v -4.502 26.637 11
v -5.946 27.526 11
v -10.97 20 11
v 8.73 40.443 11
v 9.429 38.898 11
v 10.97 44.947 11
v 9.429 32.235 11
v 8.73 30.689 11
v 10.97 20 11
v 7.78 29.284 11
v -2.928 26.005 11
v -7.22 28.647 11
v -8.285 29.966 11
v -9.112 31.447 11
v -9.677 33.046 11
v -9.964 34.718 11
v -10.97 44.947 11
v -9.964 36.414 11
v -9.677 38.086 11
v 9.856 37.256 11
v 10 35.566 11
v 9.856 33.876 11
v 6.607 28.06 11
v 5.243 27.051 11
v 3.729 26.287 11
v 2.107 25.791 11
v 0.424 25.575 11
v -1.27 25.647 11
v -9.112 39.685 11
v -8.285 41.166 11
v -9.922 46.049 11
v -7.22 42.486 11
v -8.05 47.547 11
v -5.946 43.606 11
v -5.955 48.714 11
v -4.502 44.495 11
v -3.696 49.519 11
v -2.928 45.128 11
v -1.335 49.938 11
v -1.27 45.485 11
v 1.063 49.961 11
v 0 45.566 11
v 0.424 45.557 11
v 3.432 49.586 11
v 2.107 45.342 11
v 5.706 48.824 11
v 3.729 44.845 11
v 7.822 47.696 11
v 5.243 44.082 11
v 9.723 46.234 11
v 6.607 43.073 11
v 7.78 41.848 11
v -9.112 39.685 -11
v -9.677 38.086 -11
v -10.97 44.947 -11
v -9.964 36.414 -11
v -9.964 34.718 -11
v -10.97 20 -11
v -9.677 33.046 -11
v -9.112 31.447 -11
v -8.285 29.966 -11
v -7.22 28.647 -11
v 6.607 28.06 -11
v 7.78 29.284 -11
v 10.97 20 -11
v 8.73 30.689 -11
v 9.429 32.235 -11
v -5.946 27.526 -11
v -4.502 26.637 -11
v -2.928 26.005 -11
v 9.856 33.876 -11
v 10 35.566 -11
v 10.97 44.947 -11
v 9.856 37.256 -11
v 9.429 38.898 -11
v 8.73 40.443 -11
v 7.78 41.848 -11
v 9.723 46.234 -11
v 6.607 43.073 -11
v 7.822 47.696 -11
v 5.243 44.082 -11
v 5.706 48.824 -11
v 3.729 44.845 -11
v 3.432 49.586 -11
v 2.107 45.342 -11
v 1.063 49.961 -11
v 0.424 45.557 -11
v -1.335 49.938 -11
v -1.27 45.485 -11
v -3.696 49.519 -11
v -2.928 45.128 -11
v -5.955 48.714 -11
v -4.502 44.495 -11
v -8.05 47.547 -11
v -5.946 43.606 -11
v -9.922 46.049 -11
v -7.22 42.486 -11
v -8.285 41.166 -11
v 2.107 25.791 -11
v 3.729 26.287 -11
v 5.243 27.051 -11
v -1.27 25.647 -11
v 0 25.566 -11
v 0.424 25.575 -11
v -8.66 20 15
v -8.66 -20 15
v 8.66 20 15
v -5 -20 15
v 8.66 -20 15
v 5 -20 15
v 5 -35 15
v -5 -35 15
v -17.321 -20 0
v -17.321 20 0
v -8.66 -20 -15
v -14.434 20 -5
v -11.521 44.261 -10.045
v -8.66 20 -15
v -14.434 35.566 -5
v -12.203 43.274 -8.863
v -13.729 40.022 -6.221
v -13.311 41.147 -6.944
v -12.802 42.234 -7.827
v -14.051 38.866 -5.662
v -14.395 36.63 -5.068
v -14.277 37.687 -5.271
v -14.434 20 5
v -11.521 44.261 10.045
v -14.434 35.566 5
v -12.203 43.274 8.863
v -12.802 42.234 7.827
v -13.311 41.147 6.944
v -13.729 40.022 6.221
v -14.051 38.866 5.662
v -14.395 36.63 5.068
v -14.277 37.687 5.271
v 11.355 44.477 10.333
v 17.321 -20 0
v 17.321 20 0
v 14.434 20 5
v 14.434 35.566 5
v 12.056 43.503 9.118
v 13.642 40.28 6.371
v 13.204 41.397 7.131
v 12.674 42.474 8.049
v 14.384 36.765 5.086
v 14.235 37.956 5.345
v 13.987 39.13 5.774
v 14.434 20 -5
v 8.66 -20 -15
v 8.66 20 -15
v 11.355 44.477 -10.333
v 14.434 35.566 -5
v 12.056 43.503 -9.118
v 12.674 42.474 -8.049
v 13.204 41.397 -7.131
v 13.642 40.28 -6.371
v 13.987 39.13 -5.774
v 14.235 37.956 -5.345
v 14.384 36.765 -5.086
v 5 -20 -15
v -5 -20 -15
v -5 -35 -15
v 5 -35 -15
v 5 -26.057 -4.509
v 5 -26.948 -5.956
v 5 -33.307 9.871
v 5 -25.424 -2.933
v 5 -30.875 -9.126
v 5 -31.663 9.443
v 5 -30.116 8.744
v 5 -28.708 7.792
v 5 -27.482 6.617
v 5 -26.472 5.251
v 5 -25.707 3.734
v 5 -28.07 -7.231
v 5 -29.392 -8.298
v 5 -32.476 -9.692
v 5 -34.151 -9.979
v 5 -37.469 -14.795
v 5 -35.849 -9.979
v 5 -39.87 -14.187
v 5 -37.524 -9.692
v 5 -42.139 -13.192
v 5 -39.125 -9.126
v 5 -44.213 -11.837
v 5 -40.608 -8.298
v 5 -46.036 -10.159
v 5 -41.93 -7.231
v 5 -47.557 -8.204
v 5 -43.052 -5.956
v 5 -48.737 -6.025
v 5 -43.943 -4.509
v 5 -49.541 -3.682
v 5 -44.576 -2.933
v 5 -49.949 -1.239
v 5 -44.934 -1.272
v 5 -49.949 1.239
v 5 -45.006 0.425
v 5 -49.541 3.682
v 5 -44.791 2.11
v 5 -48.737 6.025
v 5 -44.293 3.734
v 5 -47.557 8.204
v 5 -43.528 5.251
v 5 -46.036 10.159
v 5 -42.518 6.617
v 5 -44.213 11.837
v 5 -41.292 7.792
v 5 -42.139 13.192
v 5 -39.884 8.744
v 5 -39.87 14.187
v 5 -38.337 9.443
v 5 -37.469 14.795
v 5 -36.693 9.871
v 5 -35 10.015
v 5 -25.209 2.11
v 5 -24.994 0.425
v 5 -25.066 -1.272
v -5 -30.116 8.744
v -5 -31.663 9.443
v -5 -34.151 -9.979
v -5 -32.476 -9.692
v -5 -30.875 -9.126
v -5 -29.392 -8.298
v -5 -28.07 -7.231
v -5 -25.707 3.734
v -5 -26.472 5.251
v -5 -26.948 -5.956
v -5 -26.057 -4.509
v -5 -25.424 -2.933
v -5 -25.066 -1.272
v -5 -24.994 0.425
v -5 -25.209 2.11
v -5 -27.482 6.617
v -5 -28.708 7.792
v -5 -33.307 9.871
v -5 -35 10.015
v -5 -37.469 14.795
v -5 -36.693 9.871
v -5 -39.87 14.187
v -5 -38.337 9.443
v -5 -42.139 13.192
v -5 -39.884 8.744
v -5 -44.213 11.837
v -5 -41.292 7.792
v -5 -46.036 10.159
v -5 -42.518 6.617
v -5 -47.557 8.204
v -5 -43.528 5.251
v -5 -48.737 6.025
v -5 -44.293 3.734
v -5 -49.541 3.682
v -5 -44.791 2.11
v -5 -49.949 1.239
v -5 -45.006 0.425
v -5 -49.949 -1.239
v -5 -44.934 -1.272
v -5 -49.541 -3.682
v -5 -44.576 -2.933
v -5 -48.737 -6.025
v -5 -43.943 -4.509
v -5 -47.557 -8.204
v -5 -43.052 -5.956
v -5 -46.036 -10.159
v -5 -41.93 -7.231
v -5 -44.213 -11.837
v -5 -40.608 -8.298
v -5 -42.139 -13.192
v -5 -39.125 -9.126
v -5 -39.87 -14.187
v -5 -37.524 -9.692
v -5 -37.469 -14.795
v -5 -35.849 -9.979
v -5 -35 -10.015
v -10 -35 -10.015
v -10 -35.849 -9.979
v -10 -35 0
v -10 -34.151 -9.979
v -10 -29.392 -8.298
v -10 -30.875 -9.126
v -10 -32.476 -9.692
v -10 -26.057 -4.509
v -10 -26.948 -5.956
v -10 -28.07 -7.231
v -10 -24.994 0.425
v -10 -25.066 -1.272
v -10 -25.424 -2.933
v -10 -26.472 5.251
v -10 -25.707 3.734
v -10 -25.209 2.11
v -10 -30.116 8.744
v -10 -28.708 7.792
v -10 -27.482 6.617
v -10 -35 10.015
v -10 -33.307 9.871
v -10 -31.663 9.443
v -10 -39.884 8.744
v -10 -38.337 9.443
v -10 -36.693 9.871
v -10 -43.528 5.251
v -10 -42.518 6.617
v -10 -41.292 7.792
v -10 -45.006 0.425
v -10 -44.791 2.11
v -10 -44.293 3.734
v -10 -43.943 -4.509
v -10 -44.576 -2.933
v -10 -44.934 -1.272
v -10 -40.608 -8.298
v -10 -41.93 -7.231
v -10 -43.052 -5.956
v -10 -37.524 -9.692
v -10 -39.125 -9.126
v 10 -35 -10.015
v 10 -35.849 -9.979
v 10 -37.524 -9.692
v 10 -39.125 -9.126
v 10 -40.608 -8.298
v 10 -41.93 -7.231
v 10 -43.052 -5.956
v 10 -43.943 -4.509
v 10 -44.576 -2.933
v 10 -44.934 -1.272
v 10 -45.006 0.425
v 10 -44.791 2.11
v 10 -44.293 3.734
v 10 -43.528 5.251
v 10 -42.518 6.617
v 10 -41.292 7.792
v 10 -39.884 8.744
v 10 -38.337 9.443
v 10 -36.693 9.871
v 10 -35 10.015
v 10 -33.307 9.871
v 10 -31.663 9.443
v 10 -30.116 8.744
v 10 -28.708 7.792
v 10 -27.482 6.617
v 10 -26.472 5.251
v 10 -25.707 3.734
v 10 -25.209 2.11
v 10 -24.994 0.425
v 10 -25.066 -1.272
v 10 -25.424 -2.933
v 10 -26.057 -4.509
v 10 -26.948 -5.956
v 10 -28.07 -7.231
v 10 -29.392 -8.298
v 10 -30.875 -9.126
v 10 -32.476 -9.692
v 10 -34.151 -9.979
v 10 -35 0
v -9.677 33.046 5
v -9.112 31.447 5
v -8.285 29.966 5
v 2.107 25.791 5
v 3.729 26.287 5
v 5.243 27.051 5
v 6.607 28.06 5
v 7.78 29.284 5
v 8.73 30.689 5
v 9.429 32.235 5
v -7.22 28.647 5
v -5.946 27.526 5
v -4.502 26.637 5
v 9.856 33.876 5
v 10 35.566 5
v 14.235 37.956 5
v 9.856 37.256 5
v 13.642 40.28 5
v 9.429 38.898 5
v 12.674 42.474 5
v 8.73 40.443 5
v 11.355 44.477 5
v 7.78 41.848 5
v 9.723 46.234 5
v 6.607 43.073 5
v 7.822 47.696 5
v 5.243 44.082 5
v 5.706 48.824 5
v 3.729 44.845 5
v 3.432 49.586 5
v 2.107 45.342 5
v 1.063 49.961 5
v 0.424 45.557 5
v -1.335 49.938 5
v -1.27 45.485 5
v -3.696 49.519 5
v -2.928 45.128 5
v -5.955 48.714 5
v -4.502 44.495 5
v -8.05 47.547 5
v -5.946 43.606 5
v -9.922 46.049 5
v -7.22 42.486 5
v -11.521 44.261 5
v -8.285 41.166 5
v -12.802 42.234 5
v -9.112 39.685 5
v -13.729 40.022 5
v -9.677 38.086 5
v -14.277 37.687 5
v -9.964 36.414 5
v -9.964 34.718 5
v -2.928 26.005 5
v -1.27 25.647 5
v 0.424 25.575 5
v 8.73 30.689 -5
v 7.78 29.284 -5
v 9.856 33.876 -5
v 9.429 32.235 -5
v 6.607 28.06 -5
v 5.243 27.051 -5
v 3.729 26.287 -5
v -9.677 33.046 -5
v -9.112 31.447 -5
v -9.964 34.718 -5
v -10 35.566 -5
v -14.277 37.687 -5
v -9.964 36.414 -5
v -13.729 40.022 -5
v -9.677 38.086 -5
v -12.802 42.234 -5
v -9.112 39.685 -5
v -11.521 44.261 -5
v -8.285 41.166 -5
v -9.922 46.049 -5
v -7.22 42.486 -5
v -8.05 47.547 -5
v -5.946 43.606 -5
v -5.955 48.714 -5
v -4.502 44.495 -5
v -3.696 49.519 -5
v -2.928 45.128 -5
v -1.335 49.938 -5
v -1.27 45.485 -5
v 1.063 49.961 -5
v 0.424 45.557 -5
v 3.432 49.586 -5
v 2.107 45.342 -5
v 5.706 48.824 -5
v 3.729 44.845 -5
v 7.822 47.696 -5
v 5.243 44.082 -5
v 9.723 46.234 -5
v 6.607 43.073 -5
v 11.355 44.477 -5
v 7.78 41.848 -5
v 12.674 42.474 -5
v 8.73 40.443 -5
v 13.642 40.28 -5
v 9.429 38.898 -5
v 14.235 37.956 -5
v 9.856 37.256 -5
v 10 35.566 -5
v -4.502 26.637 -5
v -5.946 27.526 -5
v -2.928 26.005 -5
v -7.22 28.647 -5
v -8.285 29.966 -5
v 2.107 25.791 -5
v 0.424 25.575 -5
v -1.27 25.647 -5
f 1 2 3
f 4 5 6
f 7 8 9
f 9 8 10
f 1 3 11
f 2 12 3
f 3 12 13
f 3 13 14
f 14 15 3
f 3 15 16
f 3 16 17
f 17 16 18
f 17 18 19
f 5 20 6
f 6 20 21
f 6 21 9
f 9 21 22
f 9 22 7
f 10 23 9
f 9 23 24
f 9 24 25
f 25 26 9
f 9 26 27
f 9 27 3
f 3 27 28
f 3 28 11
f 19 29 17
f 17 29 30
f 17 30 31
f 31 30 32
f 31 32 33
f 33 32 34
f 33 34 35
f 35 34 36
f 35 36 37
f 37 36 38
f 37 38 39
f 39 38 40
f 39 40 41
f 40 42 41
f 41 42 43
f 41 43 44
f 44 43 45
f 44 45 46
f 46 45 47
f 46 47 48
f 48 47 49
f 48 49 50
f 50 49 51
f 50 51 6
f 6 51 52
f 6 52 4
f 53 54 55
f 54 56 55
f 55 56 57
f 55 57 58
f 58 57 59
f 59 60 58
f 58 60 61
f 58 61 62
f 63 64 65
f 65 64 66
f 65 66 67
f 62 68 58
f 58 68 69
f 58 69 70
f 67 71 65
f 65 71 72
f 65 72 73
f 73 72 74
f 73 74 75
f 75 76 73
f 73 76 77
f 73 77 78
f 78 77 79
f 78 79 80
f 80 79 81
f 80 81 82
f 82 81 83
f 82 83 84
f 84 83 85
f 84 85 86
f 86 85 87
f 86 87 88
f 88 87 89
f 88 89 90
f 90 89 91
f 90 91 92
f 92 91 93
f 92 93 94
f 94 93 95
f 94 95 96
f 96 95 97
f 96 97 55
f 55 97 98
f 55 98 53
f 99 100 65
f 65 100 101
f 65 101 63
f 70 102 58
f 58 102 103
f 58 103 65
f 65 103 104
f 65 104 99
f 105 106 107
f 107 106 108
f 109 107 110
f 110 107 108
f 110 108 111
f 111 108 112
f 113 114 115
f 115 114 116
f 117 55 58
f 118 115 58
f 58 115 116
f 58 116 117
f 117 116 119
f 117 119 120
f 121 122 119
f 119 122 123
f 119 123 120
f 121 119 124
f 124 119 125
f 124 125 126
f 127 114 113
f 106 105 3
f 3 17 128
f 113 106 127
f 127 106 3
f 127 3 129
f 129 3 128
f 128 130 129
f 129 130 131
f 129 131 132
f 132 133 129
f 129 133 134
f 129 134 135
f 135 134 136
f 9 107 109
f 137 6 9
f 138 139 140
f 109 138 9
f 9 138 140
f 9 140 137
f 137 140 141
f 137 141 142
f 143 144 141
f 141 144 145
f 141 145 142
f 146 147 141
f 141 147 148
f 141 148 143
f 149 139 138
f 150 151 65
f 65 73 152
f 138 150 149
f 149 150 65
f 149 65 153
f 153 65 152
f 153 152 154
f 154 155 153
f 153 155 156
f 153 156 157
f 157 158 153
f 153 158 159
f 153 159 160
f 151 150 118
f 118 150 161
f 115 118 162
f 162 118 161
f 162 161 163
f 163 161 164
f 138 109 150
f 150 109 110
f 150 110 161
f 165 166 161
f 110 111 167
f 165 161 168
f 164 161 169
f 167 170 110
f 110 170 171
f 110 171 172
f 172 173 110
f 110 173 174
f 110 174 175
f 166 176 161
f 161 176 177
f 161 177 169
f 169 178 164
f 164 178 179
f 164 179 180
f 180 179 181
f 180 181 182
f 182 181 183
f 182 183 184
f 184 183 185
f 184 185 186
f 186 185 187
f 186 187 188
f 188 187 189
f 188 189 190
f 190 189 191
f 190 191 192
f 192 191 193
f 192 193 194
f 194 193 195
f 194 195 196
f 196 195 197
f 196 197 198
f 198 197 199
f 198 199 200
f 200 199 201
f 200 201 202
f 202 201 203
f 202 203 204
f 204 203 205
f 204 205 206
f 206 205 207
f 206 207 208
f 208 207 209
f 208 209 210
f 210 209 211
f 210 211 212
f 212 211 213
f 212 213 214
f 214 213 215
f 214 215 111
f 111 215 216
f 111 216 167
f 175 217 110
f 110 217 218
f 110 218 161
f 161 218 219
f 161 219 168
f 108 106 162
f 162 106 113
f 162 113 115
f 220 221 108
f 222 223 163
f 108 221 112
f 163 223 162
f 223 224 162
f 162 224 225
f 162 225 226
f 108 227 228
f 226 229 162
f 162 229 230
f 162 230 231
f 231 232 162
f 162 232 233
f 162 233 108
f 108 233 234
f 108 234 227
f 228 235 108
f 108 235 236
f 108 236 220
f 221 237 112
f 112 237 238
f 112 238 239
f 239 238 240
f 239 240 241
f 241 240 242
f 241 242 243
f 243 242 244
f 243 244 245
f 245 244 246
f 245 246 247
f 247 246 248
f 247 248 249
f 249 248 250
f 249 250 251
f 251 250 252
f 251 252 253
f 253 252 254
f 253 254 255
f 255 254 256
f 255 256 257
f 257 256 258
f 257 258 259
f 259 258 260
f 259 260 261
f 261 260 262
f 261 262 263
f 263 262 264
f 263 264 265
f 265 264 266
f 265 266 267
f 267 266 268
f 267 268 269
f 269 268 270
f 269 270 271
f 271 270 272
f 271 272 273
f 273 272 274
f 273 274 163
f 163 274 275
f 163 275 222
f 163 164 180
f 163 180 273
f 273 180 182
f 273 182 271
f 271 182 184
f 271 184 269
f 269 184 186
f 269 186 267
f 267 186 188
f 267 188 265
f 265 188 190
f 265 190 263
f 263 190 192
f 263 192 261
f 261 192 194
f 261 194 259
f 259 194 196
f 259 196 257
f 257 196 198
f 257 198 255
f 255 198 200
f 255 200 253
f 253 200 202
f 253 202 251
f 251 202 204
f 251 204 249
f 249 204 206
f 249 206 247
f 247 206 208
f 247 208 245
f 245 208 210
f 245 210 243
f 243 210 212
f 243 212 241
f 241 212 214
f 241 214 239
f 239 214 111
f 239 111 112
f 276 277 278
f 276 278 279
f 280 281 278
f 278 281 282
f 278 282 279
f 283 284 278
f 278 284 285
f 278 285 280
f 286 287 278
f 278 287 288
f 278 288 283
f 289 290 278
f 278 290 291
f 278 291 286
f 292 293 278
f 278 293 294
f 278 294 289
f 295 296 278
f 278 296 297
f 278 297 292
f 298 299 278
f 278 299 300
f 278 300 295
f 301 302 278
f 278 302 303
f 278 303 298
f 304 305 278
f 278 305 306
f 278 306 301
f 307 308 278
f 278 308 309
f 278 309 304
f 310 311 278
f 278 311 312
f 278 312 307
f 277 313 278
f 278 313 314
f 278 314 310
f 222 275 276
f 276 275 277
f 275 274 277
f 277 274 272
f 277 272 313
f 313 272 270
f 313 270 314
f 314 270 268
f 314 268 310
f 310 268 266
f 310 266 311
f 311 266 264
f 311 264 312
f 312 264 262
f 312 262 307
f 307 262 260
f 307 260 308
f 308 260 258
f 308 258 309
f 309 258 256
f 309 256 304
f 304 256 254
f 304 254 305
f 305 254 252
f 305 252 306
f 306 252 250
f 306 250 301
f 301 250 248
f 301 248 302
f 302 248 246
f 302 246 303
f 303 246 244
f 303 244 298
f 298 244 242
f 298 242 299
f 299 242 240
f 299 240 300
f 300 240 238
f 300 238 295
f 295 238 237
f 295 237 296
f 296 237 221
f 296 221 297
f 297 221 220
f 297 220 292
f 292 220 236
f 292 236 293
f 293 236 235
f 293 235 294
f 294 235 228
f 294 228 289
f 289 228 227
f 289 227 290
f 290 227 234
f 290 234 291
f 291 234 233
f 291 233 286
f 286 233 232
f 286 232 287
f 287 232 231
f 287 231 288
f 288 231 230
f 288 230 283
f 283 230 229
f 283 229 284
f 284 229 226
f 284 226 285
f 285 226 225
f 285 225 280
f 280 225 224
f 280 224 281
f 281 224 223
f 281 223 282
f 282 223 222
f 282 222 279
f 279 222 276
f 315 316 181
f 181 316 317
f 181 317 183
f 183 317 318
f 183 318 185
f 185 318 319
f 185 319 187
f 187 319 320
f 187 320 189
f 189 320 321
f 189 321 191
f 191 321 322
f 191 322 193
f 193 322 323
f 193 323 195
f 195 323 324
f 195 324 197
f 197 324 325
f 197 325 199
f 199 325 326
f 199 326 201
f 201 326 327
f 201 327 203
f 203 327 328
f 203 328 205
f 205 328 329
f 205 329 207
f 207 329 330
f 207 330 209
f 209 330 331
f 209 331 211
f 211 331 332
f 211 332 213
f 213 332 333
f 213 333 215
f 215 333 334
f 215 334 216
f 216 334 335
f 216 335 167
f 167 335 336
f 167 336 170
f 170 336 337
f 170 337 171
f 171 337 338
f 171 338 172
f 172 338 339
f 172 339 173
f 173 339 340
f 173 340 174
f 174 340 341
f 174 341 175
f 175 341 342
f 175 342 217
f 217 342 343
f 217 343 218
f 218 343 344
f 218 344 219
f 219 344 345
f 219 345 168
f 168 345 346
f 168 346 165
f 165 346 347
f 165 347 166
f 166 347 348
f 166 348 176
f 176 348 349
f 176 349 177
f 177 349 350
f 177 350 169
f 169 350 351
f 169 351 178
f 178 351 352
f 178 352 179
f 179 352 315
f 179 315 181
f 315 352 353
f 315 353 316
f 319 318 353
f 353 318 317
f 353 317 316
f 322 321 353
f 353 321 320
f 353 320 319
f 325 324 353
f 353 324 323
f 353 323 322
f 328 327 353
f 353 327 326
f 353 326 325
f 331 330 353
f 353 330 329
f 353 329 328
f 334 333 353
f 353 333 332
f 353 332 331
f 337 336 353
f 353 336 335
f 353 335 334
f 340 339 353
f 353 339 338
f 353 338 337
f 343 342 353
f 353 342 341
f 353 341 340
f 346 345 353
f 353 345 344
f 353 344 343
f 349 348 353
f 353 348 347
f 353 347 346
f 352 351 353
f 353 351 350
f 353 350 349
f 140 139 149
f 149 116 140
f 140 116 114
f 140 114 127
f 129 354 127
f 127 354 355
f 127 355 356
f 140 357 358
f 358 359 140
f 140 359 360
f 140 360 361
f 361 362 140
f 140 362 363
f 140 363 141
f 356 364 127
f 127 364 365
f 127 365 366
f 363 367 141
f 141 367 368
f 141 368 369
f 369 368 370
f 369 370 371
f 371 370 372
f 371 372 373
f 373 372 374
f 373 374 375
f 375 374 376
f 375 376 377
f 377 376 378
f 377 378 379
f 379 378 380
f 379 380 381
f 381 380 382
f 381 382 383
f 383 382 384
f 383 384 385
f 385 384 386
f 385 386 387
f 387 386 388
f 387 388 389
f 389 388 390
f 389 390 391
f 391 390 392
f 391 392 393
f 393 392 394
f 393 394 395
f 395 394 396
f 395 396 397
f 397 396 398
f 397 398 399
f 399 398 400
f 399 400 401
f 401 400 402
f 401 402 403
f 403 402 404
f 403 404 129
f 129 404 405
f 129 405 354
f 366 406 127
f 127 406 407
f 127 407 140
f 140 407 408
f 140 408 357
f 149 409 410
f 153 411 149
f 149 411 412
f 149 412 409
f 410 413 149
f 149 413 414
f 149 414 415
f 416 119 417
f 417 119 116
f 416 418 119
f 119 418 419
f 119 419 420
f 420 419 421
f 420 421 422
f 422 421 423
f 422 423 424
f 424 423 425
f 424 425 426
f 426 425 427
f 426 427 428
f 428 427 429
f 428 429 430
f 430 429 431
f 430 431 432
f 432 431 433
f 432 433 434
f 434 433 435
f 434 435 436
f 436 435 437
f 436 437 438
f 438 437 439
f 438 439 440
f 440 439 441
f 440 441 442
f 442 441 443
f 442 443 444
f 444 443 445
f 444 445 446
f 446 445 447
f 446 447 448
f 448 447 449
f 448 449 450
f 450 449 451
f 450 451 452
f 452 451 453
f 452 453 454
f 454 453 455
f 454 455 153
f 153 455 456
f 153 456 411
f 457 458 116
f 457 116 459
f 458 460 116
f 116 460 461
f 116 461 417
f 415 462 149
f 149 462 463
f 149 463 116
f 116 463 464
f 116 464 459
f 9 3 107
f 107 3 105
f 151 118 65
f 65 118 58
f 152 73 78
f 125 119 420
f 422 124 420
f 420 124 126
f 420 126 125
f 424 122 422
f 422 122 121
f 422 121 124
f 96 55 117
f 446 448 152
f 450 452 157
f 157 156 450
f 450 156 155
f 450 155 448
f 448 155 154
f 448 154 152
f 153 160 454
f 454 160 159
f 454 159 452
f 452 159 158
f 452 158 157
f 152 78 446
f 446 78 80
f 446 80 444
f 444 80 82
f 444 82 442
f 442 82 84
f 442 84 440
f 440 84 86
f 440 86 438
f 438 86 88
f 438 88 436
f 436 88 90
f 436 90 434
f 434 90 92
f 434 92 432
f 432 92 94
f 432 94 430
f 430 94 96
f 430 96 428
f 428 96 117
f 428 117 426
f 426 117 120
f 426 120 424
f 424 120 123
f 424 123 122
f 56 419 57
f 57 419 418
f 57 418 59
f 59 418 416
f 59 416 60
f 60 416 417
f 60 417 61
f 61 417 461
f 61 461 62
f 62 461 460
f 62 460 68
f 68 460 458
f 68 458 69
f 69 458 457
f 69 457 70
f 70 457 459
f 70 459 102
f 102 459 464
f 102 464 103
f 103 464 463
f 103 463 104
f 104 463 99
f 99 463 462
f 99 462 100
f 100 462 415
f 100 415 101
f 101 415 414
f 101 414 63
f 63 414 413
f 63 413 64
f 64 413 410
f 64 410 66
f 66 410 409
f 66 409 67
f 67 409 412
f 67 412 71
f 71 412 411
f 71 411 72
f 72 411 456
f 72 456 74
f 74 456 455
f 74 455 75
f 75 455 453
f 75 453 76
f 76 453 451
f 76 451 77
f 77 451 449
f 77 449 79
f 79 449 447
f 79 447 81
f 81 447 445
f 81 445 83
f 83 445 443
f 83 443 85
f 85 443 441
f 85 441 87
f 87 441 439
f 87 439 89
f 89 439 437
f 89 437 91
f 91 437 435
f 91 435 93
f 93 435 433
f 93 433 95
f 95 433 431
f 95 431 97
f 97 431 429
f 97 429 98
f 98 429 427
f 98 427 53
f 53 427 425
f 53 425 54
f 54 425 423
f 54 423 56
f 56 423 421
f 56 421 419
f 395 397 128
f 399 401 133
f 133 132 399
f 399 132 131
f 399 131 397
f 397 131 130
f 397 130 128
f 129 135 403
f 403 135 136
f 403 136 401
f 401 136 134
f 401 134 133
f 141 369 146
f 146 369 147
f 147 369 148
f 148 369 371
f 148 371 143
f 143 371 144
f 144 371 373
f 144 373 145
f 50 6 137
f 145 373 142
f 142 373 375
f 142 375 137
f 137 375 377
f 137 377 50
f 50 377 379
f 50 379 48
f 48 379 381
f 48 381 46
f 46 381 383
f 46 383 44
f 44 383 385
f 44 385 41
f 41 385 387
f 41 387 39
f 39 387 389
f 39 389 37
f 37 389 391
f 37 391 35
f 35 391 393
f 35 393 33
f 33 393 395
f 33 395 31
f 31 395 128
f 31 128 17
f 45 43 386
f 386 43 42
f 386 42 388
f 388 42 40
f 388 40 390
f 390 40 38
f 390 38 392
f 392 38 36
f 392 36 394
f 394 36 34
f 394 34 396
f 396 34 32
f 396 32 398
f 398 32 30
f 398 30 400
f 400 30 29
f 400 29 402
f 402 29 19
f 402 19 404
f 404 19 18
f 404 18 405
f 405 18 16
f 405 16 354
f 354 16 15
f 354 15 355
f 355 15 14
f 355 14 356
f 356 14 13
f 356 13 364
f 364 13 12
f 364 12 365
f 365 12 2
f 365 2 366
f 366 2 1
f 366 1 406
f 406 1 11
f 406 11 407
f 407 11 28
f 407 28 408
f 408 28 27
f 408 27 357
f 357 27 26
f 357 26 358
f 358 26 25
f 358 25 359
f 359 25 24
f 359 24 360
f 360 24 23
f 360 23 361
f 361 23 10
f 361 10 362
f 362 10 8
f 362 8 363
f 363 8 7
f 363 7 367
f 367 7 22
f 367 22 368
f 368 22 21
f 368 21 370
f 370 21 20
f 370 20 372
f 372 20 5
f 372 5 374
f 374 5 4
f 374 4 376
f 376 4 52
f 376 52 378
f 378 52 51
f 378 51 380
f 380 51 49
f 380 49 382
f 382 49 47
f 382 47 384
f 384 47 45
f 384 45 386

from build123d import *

# Parameters (mm, degrees)
SALIENTE_EXTRUIR1_DEPTH    = 50
CORTAR_EXTRUIR1_DEPTH      = 56
CORTAR_EXTRUIR1_DEPTH_BACK = 56
CROQUIS2_W                 = 12.320508076
CROQUIS2_H                 = 30
CORTAR_EXTRUIR2_DEPTH      = 57.773277876
CORTAR_EXTRUIR2_DEPTH_BACK = 57.773277876
CROQUIS5_R                 = 10.01543576
SALIENTE_EXTRUIR2_DEPTH    = 10
CORTAR_EXTRUIR3_DEPTH      = 56
CORTAR_EXTRUIR3_DEPTH_BACK = 56
CROQUIS6_W                 = 10
CROQUIS6_H                 = 30
CROQUIS6_W_2               = 4
CORTAR_EXTRUIR4_DEPTH      = 56
CORTAR_EXTRUIR4_DEPTH_BACK = 56
CROQUIS7_R                 = 10


with BuildPart() as part:
    # Croquis1 → Saliente-Extruir1 (new, symmetric)
    with BuildSketch(Plane(origin=(0, 0, 0), x_dir=(1, 0, 0), z_dir=(0, 1, 0))):
        Polygon((-17.320508076, 0), (-8.660254038, -15), (8.660254038, -15), (17.320508076, 0), (8.660254038, 15), (-8.660254038, 15), align=None)
    extrude(amount=SALIENTE_EXTRUIR1_DEPTH, both=True)

    # Croquis2 → Cortar-Extruir1 (cut, two sides: drawn at the far end of the back side and taken through both)
    with BuildSketch(Plane.XY.offset(-CORTAR_EXTRUIR1_DEPTH_BACK)):
        with Locations((-11.160254038, -35)):
            Rectangle(CROQUIS2_W, CROQUIS2_H)
        with Locations((11.160254038, -35)):
            Rectangle(CROQUIS2_W, CROQUIS2_H)
    extrude(amount=CORTAR_EXTRUIR1_DEPTH + CORTAR_EXTRUIR1_DEPTH_BACK, mode=Mode.SUBTRACT)

    # Croquis3 → Cortar-Extruir2 (cut, two sides: drawn at the far end of the back side and taken through both)
    with BuildSketch(Plane(origin=(5, 0, 0), x_dir=(0, 0, -1), z_dir=(1, 0, 0)).offset(-CORTAR_EXTRUIR2_DEPTH_BACK)):
        with BuildLine():
            Line((-15, -35), (-15, -53.002669734))
            Line((-15, -53.002669734), (15, -53.002669734))
            Line((15, -53.002669734), (15, -35))
            ThreePointArc((15, -35), (0, -50), (-15, -35))
        make_face()
    extrude(amount=CORTAR_EXTRUIR2_DEPTH + CORTAR_EXTRUIR2_DEPTH_BACK, mode=Mode.SUBTRACT)

    # Croquis5 → Saliente-Extruir2 (add, symmetric)
    with BuildSketch(Plane(origin=(0, 0, 0), x_dir=(0, 0, -1), z_dir=(1, 0, 0))):
        with Locations((0, -35)):
            Circle(CROQUIS5_R)
    extrude(amount=SALIENTE_EXTRUIR2_DEPTH, both=True)

    # Croquis6 → Cortar-Extruir3 (cut, two sides: drawn at the far end of the back side and taken through both)
    with BuildSketch(Plane(origin=(0, 0, 0), x_dir=(0, 0, -1), z_dir=(1, 0, 0)).offset(-CORTAR_EXTRUIR3_DEPTH_BACK)):
        with Locations((0, 35)):
            Rectangle(CROQUIS6_W, CROQUIS6_H)
        with Locations((-13, 35)):
            Rectangle(CROQUIS6_W_2, CROQUIS6_H)
        with Locations((13, 35)):
            Rectangle(CROQUIS6_W_2, CROQUIS6_H)
    extrude(amount=CORTAR_EXTRUIR3_DEPTH + CORTAR_EXTRUIR3_DEPTH_BACK, mode=Mode.SUBTRACT)

    # Croquis7 → Cortar-Extruir4 (cut, two sides: drawn at the far end of the back side and taken through both)
    with BuildSketch(Plane.XY.offset(-CORTAR_EXTRUIR4_DEPTH_BACK)):
        with Locations(Location((0, 35.56624327, 0), (0, 0, 270))):
            Circle(CROQUIS7_R)
        with BuildLine():
            Line((-14.43375673, 35.56624327), (-14.43375673, 54.061973256))
            Line((-14.43375673, 54.061973256), (14.43375673, 54.061973256))
            Line((14.43375673, 54.061973256), (14.43375673, 35.56624327))
            ThreePointArc((14.43375673, 35.56624327), (0, 50), (-14.43375673, 35.56624327))
        make_face()
    extrude(amount=CORTAR_EXTRUIR4_DEPTH + CORTAR_EXTRUIR4_DEPTH_BACK, mode=Mode.SUBTRACT)


solid = part.part
